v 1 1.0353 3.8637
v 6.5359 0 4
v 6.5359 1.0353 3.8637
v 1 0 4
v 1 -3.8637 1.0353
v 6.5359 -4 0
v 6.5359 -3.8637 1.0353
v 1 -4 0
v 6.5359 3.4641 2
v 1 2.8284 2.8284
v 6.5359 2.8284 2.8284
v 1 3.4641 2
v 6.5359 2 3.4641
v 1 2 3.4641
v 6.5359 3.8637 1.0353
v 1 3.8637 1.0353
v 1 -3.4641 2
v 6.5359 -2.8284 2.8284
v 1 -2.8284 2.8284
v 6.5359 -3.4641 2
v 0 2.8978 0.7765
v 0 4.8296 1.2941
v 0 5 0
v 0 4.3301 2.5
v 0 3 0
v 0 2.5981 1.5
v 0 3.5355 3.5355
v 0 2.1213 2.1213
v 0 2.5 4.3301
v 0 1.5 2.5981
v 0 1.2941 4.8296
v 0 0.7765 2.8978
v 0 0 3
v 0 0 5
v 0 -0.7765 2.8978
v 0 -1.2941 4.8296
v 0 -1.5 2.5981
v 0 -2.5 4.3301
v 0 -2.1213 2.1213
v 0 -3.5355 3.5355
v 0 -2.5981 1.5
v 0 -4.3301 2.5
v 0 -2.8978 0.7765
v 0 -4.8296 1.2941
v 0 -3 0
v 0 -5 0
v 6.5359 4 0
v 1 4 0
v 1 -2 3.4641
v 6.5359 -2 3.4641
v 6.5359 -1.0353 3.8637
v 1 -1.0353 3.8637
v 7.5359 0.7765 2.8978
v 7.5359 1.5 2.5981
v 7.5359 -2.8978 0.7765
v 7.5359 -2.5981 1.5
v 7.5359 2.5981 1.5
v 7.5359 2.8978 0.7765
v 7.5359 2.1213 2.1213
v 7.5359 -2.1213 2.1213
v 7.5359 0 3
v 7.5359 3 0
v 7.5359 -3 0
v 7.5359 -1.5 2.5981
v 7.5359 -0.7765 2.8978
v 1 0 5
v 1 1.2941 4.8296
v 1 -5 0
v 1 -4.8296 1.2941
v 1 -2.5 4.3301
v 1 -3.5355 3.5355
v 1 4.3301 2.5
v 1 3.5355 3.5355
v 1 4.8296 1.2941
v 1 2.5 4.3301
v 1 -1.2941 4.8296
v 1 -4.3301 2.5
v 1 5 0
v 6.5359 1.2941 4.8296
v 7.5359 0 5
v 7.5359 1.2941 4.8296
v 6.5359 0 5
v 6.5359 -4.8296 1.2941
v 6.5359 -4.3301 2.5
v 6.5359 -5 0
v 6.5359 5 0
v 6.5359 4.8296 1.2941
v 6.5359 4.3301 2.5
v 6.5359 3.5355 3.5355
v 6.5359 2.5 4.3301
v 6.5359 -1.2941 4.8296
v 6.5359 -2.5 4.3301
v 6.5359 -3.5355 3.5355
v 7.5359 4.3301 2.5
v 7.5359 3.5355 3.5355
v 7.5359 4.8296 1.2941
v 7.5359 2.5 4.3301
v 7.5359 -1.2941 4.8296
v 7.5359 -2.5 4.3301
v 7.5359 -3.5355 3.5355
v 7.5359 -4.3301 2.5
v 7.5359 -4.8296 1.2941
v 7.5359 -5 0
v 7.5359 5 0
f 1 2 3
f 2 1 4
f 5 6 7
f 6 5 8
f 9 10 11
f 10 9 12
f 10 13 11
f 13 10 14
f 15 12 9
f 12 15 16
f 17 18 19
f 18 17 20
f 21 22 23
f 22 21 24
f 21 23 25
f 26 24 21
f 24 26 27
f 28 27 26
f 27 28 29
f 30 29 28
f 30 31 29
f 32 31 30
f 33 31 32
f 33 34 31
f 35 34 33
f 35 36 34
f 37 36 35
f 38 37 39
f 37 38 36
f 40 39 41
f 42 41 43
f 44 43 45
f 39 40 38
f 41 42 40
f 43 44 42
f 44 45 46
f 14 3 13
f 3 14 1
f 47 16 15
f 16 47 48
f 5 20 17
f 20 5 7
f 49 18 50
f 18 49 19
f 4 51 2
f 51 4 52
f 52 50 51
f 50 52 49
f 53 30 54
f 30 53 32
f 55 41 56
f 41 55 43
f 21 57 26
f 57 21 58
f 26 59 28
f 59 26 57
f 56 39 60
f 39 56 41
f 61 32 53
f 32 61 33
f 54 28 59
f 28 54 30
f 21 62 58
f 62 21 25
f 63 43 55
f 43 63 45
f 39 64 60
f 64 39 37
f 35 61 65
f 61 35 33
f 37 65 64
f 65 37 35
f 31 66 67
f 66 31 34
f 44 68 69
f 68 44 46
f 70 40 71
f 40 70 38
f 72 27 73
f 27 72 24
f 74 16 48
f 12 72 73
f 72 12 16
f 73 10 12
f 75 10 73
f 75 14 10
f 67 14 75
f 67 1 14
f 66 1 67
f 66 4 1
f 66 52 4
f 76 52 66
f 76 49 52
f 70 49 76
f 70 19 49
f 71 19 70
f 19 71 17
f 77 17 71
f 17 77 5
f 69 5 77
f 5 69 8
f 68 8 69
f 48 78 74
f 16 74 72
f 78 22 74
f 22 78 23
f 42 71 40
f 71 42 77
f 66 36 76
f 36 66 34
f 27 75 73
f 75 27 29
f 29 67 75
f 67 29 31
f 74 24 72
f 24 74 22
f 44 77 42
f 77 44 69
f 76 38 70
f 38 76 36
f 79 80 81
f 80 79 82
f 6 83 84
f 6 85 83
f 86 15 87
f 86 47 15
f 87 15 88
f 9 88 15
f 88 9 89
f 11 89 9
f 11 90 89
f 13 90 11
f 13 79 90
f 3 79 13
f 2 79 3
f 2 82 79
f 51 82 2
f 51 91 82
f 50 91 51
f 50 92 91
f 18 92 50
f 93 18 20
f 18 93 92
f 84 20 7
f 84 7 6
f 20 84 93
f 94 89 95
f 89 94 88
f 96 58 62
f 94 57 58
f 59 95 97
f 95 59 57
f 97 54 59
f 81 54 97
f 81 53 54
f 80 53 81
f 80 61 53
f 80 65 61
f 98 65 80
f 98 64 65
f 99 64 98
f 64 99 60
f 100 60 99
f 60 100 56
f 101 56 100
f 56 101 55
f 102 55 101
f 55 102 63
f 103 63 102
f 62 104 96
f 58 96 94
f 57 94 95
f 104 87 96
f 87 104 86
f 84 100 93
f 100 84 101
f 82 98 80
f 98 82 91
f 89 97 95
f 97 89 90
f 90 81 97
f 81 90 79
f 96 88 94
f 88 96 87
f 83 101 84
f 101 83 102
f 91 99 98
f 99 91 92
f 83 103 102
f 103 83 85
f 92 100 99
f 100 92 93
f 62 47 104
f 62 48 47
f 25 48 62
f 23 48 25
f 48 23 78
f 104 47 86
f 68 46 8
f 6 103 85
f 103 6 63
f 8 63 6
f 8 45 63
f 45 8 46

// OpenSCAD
// file: ../build_environments.scad
// build_environments.scad: modules to build level sections
//

module pool(diameter=10.0, wall_height=2.0, step_width=3.0, connections=[])
{
    difference() {
        union() {
        difference() {
            cylinder(h=0.5,r1=diameter+step_width,r2=diameter+step_width,$fn=48);
            translate([0,0,-0.1])
                cylinder(h=0.7,r1=diameter,r2=diameter,$fn=48);
        }
        difference() {
            cylinder(h=wall_height,r1=diameter+step_width+1.0,r2=diameter+step_width+1.0,$fn=48);
            translate([0,0,-0.1])
                cylinder(h=wall_height+0.2,r1=diameter+step_width,r2=diameter+step_width,$fn=48);
        }
        }
    
        for (c = connections)
        {
            rotate([0,90,0]) {
                angle = atan2(c[1],c[0]);
                rotate([-angle,0,0]) {
                    cylinder(h=diameter+5.0,r1=c[2],r2=c[2],$fn=48);
                }
            }
        }
    }
}

module straight(length=10.0, width=2.0, dy1=0.0, dy2=0.0, dz=0.0)
{
    dims = [0, 0, 0, 0, 0, (dz/length)];
    matrix = [
        [ 1, dims[0], dims[1], 0 ],
        [ dims[2], 1, dims[4], 0 ],
        [ dims[5], dims[3], 1, 0 ],
        [ 0, 0, 0, 1 ]
    ];
    multmatrix(matrix)
    difference() {
        translate([dy1,0,0])
        union() {
            rotate([0,90,0]) {
                difference() {
                    cylinder(h=(length-dy1-dy2),r1=width+1.0,r2=width+1.0,$fn=24);
                    translate([0,0,-0.1])
                        cylinder(h=(length-dy1-dy2+0.2),r1=width,r2=width,$fn=24);
                }
                difference() {
                    cylinder(h=1.0,r1=width+2.0,r2=width+2.0,$fn=24);
                    translate([0,0,-0.1])
                        cylinder(h=1.2,r1=width,r2=width,$fn=24);
                }
                translate([0,0,(length-dy1-dy2)-1.0]) {
                    difference() {
                        cylinder(h=1.0,r1=width+2.0,r2=width+2.0,$fn=24);
                        translate([0,0,-0.1])
                            cylinder(h=1.2,r1=width,r2=width,$fn=24);
                    }
                }
            }
        }
        translate([0,0,-(2*width+4.0)/2])
            cube([3*length,3*length,2*width+4.0],center=true);
    }
}

module curve(p0=[0,0], center=[0,0], dir=1, angle=0.0, width=2.0)
{
    radius = sqrt((p0[0]-center[0])*(p0[0]-center[0]) + (p0[1]-center[1])*(p0[1]-center[1]));
    if (dir == 0) {
        difference() {
            rotate([0,0,-90])
            difference() {
                rotate_extrude(angle = angle, convexity = 10, $fn=32)
                    translate([radius, 0, 0])
                        circle(r = width+1.0,$fn=24);
                rotate([0,0,-1.0])
                    rotate_extrude(angle = angle+2.0, convexity = 10, $fn=32)
                        translate([radius, 0, 0])
                            circle(r = width,$fn=24);
            }
            translate([0,0,-(2*width+4.0)/2])
                cube([5*radius,5*radius,2*width+4.0],center=true);
        }
    }
    else {
        difference() {
            rotate([0,0,90])
            difference() {
                rotate_extrude(angle = -angle, convexity = 10, $fn=32)
                    translate([radius, 0, 0])
                        circle(r = width+1.0,$fn=24);
                rotate([0,0,1.0])
                    rotate_extrude(angle = -angle-2.0, convexity = 10, $fn=32)
                        translate([radius, 0, 0])
                            circle(r = width,$fn=24);
            }
            translate([0,0,-(2*width+4.0)/2])
                cube([5*radius,5*radius,2*width+4.0],center=true);
        }
    }

}

// test pool
//pool(diameter=12.0000, wall_height=3.0000, step_width=3.0000, connections=[[0.0000,-26.0000,2.0000], [23.6074,0.0000,2.0000]]);

// test straight, slope
//straight(length=26.0000, width=2.0000, dy1=11.8322, dy2=6.7082, dz=0.0000);
//straight(length=29.1549, width=12.0000, dy1=0.0000, dy2=0.0000, dz=-15.0000);

// test curve
//curve(p0=[23.6074, 0.0000], center=[23.6074, 5.0000], dir=0, angle=60.1011, width=2.0000);
//curve(p0=[33.6426, 12.4219], center=[37.9771, 9.9295], dir=1, angle=120.4627, width=2.0000);
// main file
use <../build_environments.scad>;
straight(length=7.5359, width=3.0000, dy1=0.0000, dy2=0.0000, dz=0.0000);
